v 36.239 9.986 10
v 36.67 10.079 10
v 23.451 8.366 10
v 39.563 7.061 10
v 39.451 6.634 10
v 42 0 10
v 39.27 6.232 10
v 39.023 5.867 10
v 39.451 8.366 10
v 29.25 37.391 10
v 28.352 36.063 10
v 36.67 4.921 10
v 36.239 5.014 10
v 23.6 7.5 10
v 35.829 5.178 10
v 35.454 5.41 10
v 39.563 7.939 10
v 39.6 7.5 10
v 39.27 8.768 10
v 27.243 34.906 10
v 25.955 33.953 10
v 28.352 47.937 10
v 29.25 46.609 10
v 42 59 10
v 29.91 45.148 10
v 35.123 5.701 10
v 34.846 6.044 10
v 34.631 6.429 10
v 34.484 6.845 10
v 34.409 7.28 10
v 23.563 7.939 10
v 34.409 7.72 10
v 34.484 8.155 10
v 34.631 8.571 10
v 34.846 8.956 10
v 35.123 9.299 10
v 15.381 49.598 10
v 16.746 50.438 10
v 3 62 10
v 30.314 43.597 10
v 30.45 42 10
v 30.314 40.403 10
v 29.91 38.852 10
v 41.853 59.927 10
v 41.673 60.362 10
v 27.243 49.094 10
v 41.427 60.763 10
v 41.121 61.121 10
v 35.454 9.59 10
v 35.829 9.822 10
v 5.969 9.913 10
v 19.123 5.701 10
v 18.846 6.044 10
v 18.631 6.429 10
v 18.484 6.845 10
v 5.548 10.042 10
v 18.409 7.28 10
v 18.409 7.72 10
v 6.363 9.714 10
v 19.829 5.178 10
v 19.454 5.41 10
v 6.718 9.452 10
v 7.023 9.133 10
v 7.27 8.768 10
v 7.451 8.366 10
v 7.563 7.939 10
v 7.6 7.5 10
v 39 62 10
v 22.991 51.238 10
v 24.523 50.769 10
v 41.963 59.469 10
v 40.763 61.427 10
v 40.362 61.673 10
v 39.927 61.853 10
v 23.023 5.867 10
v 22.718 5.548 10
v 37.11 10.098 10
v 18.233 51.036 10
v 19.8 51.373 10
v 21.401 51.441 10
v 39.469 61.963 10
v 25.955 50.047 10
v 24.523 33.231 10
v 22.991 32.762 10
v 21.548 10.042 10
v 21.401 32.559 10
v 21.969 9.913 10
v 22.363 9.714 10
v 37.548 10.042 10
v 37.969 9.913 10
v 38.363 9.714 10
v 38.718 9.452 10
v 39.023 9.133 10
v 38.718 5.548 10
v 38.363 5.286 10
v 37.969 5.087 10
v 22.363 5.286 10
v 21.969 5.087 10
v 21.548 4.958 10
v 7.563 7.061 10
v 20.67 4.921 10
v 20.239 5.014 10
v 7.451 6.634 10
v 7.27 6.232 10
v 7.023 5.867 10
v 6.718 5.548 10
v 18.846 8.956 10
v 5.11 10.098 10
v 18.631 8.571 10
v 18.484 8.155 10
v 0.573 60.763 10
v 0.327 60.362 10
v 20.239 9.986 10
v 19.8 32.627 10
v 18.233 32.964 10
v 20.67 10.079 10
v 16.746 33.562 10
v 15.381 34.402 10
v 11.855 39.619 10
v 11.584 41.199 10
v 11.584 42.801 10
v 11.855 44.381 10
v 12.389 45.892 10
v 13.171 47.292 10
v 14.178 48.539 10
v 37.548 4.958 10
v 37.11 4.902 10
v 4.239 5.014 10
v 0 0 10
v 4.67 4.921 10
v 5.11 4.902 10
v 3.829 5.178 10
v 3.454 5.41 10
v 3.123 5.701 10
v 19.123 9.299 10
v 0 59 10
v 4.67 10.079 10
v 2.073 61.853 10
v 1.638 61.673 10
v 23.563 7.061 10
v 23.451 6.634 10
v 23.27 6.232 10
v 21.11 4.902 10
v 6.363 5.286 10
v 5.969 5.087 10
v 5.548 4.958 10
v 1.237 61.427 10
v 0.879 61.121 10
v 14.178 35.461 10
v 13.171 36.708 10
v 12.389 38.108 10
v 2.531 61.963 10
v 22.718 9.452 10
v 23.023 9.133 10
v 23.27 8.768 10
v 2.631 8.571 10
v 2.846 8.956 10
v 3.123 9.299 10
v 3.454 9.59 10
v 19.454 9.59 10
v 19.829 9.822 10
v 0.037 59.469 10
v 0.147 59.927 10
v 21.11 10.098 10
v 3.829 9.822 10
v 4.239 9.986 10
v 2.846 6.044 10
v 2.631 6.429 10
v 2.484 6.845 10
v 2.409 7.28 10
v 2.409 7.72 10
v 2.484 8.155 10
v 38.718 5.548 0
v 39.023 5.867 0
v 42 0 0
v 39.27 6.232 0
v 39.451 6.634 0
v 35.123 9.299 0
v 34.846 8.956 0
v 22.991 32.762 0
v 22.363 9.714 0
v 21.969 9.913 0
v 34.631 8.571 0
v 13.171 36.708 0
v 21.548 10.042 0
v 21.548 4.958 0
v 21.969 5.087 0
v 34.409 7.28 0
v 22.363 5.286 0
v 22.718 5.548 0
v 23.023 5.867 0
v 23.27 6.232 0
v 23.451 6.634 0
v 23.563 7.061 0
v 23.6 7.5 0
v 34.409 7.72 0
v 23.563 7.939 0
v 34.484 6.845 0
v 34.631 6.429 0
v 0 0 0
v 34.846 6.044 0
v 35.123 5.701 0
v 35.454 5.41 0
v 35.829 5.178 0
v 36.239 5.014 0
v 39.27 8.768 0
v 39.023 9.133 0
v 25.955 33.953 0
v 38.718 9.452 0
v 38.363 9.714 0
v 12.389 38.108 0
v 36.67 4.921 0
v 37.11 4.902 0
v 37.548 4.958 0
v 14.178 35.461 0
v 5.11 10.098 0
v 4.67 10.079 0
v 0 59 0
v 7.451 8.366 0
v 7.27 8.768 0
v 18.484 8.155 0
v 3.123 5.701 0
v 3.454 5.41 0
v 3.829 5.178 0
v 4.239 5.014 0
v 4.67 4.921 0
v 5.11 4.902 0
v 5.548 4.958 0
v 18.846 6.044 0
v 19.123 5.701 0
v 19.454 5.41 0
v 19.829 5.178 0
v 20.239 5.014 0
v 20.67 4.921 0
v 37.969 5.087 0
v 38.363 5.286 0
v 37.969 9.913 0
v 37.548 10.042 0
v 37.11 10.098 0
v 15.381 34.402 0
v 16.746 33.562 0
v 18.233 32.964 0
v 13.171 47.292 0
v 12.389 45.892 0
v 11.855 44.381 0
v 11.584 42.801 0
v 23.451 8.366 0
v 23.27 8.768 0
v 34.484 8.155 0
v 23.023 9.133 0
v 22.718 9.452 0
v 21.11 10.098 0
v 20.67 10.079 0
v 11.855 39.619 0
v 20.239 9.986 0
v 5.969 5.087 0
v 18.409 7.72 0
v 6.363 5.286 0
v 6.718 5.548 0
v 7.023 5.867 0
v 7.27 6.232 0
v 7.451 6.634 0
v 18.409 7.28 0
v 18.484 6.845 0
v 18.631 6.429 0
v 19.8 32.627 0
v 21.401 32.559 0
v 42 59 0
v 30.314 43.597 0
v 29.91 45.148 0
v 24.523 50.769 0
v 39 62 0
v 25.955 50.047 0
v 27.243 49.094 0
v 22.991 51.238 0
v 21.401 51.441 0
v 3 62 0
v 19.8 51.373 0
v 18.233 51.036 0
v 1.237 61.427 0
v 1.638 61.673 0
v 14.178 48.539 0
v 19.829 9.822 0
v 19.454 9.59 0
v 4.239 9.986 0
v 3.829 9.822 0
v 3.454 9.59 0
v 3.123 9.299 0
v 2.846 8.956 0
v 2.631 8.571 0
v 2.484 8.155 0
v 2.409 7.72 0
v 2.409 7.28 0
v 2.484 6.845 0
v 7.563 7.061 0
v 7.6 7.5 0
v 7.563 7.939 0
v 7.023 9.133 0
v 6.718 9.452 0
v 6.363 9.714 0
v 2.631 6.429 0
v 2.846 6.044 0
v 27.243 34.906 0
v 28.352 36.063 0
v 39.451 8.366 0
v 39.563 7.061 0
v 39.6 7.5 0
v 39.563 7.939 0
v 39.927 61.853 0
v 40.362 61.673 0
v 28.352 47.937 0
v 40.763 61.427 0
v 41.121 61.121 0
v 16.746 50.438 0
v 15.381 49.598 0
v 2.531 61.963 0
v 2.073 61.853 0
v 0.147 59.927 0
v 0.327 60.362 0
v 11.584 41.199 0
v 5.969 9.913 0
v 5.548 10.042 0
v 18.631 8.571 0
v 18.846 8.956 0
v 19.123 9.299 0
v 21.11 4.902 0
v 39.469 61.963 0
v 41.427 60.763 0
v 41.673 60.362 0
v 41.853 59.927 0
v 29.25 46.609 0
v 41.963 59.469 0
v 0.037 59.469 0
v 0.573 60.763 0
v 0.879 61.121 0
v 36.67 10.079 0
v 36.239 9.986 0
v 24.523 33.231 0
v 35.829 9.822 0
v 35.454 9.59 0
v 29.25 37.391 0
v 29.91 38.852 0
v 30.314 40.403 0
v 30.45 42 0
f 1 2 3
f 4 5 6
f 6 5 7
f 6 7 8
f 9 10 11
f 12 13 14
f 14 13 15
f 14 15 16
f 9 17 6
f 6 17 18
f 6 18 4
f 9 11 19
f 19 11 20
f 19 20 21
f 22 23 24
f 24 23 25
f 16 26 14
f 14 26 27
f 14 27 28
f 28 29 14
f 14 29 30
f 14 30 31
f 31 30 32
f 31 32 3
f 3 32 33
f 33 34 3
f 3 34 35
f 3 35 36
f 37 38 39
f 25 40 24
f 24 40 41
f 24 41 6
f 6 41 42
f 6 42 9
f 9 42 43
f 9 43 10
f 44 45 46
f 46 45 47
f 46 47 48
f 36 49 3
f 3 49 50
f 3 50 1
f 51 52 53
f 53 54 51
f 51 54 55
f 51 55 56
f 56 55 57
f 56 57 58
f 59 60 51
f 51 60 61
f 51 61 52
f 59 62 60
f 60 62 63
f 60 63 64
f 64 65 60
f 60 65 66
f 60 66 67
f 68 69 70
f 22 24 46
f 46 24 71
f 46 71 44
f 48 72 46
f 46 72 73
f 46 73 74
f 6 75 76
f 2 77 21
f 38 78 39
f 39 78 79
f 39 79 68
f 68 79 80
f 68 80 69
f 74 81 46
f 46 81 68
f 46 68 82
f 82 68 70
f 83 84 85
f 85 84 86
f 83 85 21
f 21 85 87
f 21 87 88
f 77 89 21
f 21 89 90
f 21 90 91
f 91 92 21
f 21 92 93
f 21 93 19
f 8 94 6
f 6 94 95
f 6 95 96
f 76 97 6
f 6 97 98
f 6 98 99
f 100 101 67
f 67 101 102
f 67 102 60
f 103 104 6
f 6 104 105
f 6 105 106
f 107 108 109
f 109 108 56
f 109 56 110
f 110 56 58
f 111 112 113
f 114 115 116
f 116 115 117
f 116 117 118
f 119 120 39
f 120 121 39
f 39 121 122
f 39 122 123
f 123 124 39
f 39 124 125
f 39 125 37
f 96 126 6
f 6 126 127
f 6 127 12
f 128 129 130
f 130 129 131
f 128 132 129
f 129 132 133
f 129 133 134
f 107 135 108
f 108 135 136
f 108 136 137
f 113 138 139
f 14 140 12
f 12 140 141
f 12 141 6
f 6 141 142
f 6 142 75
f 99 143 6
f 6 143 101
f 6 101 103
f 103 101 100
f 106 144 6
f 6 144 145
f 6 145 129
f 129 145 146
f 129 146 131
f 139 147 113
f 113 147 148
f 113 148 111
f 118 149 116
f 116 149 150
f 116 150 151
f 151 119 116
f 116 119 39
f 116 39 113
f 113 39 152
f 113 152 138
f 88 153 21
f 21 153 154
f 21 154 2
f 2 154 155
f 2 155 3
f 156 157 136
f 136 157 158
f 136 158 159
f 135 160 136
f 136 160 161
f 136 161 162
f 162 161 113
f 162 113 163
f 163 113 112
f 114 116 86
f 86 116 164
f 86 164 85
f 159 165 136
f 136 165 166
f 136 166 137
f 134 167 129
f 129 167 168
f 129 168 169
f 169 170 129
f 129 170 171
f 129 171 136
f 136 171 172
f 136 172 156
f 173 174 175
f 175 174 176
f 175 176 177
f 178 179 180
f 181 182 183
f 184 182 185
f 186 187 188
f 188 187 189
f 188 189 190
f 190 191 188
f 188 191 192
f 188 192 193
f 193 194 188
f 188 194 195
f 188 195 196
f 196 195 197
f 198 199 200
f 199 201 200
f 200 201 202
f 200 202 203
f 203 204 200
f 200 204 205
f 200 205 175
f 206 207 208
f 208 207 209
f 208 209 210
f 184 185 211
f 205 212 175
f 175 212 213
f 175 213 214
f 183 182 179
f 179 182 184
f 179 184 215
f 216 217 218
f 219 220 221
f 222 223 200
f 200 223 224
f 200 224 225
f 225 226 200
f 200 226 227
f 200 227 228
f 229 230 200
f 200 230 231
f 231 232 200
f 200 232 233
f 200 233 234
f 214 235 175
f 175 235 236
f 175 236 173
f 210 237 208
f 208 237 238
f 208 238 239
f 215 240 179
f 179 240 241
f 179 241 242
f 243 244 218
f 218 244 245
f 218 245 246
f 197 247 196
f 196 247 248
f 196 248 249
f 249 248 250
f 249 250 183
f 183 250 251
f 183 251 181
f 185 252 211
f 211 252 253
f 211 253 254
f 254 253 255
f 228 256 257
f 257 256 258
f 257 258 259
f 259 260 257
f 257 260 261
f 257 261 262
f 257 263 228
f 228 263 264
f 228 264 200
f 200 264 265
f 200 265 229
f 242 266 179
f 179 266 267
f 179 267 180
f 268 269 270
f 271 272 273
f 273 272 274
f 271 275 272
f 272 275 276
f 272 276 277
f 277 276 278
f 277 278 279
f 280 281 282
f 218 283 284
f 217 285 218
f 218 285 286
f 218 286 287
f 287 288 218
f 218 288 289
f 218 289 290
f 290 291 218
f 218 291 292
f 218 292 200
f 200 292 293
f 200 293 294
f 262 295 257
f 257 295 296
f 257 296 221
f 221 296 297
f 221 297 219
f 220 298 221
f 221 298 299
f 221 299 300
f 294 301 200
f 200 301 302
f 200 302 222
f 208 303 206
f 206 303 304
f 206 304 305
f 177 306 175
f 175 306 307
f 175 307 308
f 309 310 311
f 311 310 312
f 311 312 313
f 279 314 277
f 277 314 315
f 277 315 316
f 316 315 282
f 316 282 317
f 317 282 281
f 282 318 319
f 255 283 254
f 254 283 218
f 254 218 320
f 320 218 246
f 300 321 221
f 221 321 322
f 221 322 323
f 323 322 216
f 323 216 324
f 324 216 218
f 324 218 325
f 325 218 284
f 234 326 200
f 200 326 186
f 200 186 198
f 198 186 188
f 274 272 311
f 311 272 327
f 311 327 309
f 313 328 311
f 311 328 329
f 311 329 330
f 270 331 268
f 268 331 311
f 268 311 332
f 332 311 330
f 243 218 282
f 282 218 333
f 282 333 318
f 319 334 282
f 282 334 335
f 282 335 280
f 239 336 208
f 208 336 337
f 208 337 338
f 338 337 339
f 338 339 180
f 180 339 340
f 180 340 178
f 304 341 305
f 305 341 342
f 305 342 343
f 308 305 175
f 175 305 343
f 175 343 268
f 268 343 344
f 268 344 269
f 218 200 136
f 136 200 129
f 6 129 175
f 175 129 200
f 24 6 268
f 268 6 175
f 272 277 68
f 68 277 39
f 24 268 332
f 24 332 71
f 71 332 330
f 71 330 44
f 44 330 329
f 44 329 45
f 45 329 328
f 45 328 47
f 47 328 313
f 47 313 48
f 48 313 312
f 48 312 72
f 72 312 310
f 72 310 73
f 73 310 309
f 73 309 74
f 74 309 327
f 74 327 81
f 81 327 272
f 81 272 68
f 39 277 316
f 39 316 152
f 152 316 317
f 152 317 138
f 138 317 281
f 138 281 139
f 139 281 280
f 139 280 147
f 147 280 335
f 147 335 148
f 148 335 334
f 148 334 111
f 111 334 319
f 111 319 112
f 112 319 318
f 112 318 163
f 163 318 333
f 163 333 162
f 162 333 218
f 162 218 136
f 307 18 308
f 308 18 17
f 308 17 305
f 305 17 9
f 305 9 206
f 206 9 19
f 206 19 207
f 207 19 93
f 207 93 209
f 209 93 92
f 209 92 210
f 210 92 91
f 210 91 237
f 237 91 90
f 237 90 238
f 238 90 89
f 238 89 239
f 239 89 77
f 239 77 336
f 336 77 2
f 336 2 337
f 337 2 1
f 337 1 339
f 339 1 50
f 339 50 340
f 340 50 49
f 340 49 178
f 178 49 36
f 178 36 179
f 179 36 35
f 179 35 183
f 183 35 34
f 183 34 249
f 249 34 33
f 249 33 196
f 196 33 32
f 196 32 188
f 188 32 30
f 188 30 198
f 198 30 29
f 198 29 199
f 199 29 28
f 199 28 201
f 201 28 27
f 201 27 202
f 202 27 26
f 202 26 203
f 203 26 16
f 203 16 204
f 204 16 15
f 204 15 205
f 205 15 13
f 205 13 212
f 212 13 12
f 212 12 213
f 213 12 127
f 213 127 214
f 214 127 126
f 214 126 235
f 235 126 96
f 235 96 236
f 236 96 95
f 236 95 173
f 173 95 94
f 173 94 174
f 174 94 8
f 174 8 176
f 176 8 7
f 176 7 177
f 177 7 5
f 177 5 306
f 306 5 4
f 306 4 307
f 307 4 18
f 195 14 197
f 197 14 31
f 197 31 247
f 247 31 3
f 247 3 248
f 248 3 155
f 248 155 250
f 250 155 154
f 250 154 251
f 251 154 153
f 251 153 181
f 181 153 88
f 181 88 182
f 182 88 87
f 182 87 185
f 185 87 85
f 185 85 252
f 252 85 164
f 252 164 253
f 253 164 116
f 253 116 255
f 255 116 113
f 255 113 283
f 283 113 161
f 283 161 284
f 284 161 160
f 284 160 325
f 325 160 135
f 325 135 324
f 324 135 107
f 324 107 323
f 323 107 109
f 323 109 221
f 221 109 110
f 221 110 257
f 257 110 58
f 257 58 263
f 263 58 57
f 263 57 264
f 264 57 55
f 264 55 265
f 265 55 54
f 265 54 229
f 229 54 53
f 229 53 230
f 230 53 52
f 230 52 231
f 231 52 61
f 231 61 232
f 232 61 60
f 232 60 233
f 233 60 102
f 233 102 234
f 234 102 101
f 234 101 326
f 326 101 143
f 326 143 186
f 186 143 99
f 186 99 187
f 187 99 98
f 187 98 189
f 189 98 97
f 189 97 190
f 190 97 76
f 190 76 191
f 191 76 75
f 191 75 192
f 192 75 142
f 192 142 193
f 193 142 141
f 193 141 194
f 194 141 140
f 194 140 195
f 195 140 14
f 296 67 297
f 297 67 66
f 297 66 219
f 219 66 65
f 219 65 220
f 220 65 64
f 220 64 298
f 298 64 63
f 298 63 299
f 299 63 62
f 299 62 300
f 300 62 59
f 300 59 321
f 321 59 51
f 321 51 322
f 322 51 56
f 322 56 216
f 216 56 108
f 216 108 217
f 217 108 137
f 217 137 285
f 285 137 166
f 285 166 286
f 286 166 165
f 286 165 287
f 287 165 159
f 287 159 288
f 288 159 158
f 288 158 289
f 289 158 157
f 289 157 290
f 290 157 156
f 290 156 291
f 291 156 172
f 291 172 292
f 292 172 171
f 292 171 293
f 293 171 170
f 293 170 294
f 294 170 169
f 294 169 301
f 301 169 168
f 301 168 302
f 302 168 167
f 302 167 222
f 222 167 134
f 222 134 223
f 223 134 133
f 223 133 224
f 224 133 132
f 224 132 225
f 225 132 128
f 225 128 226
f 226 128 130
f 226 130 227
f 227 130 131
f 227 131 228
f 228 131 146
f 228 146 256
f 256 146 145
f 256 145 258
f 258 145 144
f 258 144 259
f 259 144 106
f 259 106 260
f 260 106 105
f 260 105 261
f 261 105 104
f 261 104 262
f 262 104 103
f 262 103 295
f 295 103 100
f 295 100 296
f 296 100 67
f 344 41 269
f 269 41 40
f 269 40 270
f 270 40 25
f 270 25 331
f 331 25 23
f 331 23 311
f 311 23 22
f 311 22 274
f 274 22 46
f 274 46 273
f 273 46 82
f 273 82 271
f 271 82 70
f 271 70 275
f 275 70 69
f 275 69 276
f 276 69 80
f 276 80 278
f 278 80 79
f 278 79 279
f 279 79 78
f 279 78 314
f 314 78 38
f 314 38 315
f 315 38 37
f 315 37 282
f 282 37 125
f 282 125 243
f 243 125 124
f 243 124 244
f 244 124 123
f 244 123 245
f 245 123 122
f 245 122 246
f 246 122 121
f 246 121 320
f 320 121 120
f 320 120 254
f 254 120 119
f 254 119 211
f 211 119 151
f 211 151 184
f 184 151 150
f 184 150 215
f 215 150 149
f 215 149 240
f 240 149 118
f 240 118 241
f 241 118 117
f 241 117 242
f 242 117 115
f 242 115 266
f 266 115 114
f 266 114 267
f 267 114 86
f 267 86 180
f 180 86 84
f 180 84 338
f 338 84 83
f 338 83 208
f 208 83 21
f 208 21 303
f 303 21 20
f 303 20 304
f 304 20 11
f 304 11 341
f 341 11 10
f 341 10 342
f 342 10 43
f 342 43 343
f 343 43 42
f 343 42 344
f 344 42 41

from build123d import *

# Parameters (mm, degrees)
SKETCH1_W           = 42
SKETCH1_H           = 62
SKETCH1_R           = 4.15
BOSS_EXTRUDE1_DEPTH = 10
FILLET1_R           = 3
SKETCH2_R           = 2.6
CUT_EXTRUDE1_DEPTH  = 11
SKETCH3_R           = 9.45
CUT_EXTRUDE2_DEPTH  = 10


with BuildPart() as part:
    # Sketch1 → Boss-Extrude1 (new body)
    with BuildSketch(Plane.XY):
        with Locations((21, 31)):
            Rectangle(SKETCH1_W, SKETCH1_H)
        with Locations((21, 42)):
            Circle(SKETCH1_R, mode=Mode.SUBTRACT)
    extrude(amount=BOSS_EXTRUDE1_DEPTH)

    # Fillet1
    fillet1_edges = [part.edges().sort_by_distance(p)[0] for p in [
        (0, 62, 5),
        (42, 62, 5),
    ]]
    fillet(fillet1_edges, radius=FILLET1_R)

    # Sketch2 → Cut-Extrude1 (cut, through all)
    with BuildSketch(Plane.XY.offset(10)):
        with Locations((5, 7.5)):
            Circle(SKETCH2_R)
        with Locations((21, 7.5)):
            Circle(SKETCH2_R)
        with Locations((37, 7.5)):
            Circle(SKETCH2_R)
    extrude(amount=-CUT_EXTRUDE1_DEPTH, mode=Mode.SUBTRACT)

    # Sketch3 → Cut-Extrude2 (cut)
    with BuildSketch(Plane.XY.offset(10)):
        with Locations((21, 42)):
            Circle(SKETCH3_R)
    extrude(amount=-CUT_EXTRUDE2_DEPTH, mode=Mode.SUBTRACT)


solid = part.part
